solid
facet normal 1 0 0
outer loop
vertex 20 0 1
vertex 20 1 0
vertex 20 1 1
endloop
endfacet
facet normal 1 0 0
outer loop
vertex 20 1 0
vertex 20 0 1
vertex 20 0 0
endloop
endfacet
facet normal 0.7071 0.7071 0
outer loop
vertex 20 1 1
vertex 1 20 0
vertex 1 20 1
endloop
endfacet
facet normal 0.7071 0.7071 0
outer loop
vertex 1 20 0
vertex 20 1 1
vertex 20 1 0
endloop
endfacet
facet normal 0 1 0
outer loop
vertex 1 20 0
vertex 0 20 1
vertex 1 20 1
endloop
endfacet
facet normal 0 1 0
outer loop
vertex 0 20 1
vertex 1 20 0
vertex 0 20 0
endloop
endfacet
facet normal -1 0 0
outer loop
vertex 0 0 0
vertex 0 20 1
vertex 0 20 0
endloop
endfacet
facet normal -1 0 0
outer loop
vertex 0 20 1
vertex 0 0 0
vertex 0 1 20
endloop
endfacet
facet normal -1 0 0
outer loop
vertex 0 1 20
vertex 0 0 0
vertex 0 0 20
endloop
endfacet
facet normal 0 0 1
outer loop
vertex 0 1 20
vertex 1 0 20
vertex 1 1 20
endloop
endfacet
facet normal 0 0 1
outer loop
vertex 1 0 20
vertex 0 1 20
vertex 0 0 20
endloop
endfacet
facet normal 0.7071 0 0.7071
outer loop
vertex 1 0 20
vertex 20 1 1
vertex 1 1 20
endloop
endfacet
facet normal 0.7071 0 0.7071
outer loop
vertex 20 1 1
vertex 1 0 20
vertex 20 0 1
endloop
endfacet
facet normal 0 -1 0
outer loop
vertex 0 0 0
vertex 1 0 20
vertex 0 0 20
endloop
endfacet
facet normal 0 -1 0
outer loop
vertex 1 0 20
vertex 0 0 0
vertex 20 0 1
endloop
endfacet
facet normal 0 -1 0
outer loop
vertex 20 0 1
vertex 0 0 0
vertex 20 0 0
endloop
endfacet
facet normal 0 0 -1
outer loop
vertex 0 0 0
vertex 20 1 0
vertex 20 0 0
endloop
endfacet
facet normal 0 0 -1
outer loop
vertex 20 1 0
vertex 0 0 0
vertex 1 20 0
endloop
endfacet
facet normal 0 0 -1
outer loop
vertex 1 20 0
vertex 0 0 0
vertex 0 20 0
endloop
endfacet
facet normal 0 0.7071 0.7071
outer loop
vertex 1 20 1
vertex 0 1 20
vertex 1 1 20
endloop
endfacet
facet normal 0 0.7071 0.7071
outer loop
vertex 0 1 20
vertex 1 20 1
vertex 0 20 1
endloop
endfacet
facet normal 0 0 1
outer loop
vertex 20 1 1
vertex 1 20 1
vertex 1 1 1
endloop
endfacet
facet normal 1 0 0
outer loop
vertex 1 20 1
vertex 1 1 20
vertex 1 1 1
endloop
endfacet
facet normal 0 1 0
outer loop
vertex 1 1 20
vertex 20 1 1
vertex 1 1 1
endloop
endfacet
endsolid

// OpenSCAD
difference(){
hull(){
cube([20,1,1]);
cube([1,20,1]);
cube([1,1,20]);
}
translate([1,1,1])
cube(20);
}
